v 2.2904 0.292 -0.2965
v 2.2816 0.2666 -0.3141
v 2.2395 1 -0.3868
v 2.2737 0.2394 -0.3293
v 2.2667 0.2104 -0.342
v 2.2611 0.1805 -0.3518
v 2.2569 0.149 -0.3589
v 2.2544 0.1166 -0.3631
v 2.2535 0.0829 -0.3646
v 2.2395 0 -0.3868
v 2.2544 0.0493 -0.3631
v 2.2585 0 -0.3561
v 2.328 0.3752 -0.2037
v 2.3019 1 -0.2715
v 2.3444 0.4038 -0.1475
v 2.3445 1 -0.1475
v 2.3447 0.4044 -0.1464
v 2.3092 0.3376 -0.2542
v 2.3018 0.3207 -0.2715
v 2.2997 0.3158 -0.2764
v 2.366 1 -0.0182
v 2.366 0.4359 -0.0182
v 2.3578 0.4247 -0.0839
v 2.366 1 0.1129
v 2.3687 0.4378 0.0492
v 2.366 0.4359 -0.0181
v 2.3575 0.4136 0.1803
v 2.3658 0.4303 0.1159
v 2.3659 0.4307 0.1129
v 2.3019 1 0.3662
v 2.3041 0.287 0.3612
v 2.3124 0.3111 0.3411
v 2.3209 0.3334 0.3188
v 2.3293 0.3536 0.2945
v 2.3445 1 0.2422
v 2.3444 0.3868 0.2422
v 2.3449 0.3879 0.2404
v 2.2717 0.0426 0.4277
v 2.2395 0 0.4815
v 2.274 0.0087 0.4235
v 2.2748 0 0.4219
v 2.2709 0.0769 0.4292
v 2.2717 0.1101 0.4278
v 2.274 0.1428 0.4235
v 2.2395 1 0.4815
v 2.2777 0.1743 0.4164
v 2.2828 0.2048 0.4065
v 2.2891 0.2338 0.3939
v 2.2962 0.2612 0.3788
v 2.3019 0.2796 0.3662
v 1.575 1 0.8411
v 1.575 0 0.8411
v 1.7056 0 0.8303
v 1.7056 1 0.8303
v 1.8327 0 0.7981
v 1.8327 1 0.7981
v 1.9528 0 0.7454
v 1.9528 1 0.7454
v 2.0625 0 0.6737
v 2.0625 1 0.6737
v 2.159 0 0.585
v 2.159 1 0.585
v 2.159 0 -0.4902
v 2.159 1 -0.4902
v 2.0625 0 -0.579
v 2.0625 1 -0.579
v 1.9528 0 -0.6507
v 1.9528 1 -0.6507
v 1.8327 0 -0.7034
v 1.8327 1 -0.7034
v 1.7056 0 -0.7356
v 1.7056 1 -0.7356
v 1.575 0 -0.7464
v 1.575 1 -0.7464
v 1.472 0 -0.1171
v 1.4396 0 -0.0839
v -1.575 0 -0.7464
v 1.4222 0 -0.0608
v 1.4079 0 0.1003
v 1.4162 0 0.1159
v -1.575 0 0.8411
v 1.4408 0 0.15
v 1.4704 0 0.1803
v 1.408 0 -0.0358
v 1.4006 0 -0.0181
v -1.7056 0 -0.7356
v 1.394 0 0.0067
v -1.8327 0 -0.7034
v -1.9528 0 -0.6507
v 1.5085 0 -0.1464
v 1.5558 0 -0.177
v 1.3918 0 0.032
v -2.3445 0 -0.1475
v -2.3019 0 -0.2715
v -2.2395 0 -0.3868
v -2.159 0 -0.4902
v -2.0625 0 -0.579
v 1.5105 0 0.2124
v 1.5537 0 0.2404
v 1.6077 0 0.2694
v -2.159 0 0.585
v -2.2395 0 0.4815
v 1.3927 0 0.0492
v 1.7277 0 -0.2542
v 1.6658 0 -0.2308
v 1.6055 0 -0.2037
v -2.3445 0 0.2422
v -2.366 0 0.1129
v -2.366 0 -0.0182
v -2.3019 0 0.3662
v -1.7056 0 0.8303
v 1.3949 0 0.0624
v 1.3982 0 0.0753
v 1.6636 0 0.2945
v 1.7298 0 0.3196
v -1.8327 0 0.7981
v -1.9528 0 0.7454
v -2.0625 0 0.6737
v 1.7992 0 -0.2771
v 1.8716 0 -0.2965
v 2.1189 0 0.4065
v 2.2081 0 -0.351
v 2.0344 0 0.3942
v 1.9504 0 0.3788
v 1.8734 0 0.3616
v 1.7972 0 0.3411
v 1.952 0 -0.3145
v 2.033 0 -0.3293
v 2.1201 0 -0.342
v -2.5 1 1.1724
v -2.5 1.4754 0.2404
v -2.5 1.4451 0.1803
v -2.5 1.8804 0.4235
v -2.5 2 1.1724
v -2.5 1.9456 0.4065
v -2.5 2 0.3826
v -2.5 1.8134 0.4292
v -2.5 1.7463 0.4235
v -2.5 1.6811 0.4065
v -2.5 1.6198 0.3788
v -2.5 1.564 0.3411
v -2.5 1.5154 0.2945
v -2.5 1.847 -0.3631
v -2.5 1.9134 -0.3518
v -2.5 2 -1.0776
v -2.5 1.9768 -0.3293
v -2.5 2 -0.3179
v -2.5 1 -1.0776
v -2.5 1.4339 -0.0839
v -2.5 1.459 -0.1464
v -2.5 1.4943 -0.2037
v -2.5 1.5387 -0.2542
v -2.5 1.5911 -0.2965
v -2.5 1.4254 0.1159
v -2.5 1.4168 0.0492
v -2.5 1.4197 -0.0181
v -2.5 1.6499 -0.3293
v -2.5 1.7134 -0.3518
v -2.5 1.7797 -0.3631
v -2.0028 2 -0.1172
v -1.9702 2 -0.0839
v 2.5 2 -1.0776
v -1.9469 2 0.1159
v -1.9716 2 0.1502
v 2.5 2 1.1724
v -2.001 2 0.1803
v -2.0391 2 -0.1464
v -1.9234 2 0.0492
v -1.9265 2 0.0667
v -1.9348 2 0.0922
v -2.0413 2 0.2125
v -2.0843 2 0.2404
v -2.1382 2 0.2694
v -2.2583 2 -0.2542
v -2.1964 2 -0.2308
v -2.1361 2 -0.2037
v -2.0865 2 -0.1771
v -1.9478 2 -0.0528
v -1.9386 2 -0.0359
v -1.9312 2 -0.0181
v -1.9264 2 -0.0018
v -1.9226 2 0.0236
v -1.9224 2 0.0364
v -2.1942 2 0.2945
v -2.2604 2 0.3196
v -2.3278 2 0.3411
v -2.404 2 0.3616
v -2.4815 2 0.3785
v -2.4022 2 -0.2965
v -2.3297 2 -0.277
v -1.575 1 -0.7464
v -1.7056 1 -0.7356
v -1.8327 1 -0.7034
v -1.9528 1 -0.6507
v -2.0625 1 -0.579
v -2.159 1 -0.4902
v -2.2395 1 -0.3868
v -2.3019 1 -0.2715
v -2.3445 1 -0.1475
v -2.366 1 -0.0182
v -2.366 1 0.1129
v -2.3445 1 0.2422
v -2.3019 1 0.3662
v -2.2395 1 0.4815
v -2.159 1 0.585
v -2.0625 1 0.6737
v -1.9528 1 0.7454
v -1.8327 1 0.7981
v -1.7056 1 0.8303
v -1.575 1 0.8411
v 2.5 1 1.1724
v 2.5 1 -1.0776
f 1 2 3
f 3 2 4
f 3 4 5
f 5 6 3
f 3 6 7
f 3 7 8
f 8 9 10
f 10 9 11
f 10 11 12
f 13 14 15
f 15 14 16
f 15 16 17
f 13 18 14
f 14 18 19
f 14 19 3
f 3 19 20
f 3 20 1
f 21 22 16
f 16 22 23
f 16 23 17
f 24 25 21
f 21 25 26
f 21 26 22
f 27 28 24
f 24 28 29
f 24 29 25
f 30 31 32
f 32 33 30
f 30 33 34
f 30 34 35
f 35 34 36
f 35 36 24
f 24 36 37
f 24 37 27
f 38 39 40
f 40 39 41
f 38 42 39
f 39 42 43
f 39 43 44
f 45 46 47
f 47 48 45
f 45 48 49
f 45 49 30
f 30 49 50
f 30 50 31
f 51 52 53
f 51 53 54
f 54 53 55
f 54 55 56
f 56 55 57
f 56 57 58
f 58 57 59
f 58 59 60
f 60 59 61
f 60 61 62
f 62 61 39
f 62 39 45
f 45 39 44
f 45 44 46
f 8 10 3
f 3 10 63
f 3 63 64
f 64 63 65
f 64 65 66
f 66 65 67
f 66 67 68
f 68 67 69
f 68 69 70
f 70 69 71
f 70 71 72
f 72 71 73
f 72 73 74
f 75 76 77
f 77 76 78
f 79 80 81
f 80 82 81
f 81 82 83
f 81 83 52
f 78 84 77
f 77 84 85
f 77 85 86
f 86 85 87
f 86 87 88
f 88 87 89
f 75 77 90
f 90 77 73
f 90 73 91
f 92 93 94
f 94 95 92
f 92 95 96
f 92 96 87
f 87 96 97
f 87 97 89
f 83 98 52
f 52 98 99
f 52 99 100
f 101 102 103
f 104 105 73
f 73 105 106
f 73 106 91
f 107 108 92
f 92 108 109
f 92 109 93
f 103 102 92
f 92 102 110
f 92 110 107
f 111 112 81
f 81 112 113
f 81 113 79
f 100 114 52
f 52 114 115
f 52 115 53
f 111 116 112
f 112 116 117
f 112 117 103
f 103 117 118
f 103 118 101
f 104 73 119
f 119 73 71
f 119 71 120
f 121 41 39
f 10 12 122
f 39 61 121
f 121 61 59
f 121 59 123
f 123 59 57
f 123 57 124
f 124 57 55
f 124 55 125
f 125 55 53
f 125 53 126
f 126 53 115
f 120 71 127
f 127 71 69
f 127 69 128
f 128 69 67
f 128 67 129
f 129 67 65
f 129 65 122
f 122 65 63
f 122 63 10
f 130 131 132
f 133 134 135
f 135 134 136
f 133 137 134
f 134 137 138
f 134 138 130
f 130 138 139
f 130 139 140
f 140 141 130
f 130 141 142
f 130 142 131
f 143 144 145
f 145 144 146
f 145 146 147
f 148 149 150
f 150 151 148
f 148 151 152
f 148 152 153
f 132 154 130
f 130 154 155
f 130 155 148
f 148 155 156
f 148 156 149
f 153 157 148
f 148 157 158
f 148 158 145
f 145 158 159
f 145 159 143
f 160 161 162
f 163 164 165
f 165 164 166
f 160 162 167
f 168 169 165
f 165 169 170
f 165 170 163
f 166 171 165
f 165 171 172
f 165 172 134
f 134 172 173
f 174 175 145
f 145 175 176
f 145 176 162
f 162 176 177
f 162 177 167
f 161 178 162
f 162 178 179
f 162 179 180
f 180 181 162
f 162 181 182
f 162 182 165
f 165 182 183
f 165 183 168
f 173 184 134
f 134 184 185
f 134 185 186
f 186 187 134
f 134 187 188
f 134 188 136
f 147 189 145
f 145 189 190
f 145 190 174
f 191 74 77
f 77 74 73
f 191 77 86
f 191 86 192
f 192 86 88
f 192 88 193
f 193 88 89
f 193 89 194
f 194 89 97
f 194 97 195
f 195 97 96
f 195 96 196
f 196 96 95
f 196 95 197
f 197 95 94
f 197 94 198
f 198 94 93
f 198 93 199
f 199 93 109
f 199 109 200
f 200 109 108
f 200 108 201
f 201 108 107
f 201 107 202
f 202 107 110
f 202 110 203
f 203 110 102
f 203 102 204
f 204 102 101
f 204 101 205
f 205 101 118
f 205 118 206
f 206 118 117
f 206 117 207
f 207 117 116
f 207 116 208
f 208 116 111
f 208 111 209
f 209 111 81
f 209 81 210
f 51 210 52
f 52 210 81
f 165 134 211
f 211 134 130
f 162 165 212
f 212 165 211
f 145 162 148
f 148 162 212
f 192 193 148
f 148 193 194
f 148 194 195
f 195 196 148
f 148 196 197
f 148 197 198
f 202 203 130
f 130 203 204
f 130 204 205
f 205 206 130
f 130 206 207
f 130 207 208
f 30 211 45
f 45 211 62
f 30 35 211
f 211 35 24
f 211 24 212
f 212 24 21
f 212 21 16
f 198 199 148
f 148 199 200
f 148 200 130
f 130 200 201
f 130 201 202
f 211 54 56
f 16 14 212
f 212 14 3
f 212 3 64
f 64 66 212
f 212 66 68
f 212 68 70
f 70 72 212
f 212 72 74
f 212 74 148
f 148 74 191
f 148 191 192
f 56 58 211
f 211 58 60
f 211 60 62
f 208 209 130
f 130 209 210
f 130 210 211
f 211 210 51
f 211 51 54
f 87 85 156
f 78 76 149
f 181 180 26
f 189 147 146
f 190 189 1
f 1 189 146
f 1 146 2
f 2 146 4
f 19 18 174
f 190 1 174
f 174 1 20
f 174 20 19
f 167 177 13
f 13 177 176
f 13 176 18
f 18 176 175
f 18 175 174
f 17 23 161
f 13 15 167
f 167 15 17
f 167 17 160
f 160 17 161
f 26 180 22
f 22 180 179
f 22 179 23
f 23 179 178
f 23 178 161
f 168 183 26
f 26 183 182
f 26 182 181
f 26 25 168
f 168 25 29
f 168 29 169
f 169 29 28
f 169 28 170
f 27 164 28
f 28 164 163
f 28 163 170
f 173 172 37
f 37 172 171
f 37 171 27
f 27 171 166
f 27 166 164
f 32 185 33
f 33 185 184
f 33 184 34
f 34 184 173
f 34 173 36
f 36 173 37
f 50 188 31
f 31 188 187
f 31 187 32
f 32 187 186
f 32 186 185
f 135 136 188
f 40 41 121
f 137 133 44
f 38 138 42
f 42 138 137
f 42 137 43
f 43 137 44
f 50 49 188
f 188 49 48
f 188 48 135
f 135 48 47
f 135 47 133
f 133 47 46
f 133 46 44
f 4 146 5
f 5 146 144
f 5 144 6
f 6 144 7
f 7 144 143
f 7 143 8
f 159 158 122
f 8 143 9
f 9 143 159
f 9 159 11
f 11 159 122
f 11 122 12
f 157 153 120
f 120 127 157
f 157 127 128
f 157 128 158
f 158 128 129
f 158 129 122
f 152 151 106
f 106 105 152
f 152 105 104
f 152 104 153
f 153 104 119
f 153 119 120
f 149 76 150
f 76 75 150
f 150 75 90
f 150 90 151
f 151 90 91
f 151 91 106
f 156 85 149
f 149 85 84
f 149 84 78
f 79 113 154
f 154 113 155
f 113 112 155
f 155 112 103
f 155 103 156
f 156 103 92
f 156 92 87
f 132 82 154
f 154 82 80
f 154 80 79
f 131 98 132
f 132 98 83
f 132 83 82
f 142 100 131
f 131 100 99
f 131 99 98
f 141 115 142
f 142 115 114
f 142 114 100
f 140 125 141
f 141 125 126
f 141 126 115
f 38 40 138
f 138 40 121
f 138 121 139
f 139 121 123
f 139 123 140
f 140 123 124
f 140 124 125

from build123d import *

# Parameters (mm, degrees)
SKETCH1_W           = 3.15
SKETCH1_H           = 1.5875
BOSS_EXTRUDE1_DEPTH = 1
SKETCH5_W           = 5
SKETCH5_H           = 2.25
BOSS_EXTRUDE2_DEPTH = 1
SKETCH4_2_R         = 0.396875


with BuildPart() as part:
    # Sketch1 → Boss-Extrude1 (new body)
    with BuildSketch(Plane(origin=(0, 0, 0), x_dir=(1, 0, 0), z_dir=(0, 1, 0))):
        with Locations((0, -0.047367461)):
            Rectangle(SKETCH1_W, SKETCH1_H)
        with BuildLine():
            Line((-1.575, -0.841117461), (-1.575, 0.746382539))
            ThreePointArc((-1.575, 0.746382539), (-2.36875, -0.047367461), (-1.575, -0.841117461))
        make_face()
        with BuildLine():
            ThreePointArc((1.575, -0.841117461), (2.36875, -0.047367461), (1.575, 0.746382539))
            Line((1.575, 0.746382539), (1.575, -0.841117461))
        make_face()
    extrude(amount=BOSS_EXTRUDE1_DEPTH)

    # Sketch5 → Boss-Extrude2 (add)
    with BuildSketch(Plane(origin=(0, 1, 0), x_dir=(1, 0, 0), z_dir=(0, 1, 0))):
        with Locations((0, -0.047367461)):
            Rectangle(SKETCH5_W, SKETCH5_H)
    extrude(amount=BOSS_EXTRUDE2_DEPTH)

    # Cut-Sweep4: sweep along a path in Sketch6
    with BuildLine(Plane.XY) as cut_sweep4_path:
        Line((2.5, 0), (-2.867631708, 1.95365817))
    # Sketch4<2> → Cut-Sweep4 (sweep, cut)
    with BuildSketch(Plane(origin=(2.5, 1, 0), x_dir=(0, 0, 1), z_dir=(-1, 0, 0))):
        with Locations((0.032314724, -1.006488934)):
            Circle(SKETCH4_2_R)
    sweep(path=cut_sweep4_path.line, mode=Mode.SUBTRACT)


solid = part.part
